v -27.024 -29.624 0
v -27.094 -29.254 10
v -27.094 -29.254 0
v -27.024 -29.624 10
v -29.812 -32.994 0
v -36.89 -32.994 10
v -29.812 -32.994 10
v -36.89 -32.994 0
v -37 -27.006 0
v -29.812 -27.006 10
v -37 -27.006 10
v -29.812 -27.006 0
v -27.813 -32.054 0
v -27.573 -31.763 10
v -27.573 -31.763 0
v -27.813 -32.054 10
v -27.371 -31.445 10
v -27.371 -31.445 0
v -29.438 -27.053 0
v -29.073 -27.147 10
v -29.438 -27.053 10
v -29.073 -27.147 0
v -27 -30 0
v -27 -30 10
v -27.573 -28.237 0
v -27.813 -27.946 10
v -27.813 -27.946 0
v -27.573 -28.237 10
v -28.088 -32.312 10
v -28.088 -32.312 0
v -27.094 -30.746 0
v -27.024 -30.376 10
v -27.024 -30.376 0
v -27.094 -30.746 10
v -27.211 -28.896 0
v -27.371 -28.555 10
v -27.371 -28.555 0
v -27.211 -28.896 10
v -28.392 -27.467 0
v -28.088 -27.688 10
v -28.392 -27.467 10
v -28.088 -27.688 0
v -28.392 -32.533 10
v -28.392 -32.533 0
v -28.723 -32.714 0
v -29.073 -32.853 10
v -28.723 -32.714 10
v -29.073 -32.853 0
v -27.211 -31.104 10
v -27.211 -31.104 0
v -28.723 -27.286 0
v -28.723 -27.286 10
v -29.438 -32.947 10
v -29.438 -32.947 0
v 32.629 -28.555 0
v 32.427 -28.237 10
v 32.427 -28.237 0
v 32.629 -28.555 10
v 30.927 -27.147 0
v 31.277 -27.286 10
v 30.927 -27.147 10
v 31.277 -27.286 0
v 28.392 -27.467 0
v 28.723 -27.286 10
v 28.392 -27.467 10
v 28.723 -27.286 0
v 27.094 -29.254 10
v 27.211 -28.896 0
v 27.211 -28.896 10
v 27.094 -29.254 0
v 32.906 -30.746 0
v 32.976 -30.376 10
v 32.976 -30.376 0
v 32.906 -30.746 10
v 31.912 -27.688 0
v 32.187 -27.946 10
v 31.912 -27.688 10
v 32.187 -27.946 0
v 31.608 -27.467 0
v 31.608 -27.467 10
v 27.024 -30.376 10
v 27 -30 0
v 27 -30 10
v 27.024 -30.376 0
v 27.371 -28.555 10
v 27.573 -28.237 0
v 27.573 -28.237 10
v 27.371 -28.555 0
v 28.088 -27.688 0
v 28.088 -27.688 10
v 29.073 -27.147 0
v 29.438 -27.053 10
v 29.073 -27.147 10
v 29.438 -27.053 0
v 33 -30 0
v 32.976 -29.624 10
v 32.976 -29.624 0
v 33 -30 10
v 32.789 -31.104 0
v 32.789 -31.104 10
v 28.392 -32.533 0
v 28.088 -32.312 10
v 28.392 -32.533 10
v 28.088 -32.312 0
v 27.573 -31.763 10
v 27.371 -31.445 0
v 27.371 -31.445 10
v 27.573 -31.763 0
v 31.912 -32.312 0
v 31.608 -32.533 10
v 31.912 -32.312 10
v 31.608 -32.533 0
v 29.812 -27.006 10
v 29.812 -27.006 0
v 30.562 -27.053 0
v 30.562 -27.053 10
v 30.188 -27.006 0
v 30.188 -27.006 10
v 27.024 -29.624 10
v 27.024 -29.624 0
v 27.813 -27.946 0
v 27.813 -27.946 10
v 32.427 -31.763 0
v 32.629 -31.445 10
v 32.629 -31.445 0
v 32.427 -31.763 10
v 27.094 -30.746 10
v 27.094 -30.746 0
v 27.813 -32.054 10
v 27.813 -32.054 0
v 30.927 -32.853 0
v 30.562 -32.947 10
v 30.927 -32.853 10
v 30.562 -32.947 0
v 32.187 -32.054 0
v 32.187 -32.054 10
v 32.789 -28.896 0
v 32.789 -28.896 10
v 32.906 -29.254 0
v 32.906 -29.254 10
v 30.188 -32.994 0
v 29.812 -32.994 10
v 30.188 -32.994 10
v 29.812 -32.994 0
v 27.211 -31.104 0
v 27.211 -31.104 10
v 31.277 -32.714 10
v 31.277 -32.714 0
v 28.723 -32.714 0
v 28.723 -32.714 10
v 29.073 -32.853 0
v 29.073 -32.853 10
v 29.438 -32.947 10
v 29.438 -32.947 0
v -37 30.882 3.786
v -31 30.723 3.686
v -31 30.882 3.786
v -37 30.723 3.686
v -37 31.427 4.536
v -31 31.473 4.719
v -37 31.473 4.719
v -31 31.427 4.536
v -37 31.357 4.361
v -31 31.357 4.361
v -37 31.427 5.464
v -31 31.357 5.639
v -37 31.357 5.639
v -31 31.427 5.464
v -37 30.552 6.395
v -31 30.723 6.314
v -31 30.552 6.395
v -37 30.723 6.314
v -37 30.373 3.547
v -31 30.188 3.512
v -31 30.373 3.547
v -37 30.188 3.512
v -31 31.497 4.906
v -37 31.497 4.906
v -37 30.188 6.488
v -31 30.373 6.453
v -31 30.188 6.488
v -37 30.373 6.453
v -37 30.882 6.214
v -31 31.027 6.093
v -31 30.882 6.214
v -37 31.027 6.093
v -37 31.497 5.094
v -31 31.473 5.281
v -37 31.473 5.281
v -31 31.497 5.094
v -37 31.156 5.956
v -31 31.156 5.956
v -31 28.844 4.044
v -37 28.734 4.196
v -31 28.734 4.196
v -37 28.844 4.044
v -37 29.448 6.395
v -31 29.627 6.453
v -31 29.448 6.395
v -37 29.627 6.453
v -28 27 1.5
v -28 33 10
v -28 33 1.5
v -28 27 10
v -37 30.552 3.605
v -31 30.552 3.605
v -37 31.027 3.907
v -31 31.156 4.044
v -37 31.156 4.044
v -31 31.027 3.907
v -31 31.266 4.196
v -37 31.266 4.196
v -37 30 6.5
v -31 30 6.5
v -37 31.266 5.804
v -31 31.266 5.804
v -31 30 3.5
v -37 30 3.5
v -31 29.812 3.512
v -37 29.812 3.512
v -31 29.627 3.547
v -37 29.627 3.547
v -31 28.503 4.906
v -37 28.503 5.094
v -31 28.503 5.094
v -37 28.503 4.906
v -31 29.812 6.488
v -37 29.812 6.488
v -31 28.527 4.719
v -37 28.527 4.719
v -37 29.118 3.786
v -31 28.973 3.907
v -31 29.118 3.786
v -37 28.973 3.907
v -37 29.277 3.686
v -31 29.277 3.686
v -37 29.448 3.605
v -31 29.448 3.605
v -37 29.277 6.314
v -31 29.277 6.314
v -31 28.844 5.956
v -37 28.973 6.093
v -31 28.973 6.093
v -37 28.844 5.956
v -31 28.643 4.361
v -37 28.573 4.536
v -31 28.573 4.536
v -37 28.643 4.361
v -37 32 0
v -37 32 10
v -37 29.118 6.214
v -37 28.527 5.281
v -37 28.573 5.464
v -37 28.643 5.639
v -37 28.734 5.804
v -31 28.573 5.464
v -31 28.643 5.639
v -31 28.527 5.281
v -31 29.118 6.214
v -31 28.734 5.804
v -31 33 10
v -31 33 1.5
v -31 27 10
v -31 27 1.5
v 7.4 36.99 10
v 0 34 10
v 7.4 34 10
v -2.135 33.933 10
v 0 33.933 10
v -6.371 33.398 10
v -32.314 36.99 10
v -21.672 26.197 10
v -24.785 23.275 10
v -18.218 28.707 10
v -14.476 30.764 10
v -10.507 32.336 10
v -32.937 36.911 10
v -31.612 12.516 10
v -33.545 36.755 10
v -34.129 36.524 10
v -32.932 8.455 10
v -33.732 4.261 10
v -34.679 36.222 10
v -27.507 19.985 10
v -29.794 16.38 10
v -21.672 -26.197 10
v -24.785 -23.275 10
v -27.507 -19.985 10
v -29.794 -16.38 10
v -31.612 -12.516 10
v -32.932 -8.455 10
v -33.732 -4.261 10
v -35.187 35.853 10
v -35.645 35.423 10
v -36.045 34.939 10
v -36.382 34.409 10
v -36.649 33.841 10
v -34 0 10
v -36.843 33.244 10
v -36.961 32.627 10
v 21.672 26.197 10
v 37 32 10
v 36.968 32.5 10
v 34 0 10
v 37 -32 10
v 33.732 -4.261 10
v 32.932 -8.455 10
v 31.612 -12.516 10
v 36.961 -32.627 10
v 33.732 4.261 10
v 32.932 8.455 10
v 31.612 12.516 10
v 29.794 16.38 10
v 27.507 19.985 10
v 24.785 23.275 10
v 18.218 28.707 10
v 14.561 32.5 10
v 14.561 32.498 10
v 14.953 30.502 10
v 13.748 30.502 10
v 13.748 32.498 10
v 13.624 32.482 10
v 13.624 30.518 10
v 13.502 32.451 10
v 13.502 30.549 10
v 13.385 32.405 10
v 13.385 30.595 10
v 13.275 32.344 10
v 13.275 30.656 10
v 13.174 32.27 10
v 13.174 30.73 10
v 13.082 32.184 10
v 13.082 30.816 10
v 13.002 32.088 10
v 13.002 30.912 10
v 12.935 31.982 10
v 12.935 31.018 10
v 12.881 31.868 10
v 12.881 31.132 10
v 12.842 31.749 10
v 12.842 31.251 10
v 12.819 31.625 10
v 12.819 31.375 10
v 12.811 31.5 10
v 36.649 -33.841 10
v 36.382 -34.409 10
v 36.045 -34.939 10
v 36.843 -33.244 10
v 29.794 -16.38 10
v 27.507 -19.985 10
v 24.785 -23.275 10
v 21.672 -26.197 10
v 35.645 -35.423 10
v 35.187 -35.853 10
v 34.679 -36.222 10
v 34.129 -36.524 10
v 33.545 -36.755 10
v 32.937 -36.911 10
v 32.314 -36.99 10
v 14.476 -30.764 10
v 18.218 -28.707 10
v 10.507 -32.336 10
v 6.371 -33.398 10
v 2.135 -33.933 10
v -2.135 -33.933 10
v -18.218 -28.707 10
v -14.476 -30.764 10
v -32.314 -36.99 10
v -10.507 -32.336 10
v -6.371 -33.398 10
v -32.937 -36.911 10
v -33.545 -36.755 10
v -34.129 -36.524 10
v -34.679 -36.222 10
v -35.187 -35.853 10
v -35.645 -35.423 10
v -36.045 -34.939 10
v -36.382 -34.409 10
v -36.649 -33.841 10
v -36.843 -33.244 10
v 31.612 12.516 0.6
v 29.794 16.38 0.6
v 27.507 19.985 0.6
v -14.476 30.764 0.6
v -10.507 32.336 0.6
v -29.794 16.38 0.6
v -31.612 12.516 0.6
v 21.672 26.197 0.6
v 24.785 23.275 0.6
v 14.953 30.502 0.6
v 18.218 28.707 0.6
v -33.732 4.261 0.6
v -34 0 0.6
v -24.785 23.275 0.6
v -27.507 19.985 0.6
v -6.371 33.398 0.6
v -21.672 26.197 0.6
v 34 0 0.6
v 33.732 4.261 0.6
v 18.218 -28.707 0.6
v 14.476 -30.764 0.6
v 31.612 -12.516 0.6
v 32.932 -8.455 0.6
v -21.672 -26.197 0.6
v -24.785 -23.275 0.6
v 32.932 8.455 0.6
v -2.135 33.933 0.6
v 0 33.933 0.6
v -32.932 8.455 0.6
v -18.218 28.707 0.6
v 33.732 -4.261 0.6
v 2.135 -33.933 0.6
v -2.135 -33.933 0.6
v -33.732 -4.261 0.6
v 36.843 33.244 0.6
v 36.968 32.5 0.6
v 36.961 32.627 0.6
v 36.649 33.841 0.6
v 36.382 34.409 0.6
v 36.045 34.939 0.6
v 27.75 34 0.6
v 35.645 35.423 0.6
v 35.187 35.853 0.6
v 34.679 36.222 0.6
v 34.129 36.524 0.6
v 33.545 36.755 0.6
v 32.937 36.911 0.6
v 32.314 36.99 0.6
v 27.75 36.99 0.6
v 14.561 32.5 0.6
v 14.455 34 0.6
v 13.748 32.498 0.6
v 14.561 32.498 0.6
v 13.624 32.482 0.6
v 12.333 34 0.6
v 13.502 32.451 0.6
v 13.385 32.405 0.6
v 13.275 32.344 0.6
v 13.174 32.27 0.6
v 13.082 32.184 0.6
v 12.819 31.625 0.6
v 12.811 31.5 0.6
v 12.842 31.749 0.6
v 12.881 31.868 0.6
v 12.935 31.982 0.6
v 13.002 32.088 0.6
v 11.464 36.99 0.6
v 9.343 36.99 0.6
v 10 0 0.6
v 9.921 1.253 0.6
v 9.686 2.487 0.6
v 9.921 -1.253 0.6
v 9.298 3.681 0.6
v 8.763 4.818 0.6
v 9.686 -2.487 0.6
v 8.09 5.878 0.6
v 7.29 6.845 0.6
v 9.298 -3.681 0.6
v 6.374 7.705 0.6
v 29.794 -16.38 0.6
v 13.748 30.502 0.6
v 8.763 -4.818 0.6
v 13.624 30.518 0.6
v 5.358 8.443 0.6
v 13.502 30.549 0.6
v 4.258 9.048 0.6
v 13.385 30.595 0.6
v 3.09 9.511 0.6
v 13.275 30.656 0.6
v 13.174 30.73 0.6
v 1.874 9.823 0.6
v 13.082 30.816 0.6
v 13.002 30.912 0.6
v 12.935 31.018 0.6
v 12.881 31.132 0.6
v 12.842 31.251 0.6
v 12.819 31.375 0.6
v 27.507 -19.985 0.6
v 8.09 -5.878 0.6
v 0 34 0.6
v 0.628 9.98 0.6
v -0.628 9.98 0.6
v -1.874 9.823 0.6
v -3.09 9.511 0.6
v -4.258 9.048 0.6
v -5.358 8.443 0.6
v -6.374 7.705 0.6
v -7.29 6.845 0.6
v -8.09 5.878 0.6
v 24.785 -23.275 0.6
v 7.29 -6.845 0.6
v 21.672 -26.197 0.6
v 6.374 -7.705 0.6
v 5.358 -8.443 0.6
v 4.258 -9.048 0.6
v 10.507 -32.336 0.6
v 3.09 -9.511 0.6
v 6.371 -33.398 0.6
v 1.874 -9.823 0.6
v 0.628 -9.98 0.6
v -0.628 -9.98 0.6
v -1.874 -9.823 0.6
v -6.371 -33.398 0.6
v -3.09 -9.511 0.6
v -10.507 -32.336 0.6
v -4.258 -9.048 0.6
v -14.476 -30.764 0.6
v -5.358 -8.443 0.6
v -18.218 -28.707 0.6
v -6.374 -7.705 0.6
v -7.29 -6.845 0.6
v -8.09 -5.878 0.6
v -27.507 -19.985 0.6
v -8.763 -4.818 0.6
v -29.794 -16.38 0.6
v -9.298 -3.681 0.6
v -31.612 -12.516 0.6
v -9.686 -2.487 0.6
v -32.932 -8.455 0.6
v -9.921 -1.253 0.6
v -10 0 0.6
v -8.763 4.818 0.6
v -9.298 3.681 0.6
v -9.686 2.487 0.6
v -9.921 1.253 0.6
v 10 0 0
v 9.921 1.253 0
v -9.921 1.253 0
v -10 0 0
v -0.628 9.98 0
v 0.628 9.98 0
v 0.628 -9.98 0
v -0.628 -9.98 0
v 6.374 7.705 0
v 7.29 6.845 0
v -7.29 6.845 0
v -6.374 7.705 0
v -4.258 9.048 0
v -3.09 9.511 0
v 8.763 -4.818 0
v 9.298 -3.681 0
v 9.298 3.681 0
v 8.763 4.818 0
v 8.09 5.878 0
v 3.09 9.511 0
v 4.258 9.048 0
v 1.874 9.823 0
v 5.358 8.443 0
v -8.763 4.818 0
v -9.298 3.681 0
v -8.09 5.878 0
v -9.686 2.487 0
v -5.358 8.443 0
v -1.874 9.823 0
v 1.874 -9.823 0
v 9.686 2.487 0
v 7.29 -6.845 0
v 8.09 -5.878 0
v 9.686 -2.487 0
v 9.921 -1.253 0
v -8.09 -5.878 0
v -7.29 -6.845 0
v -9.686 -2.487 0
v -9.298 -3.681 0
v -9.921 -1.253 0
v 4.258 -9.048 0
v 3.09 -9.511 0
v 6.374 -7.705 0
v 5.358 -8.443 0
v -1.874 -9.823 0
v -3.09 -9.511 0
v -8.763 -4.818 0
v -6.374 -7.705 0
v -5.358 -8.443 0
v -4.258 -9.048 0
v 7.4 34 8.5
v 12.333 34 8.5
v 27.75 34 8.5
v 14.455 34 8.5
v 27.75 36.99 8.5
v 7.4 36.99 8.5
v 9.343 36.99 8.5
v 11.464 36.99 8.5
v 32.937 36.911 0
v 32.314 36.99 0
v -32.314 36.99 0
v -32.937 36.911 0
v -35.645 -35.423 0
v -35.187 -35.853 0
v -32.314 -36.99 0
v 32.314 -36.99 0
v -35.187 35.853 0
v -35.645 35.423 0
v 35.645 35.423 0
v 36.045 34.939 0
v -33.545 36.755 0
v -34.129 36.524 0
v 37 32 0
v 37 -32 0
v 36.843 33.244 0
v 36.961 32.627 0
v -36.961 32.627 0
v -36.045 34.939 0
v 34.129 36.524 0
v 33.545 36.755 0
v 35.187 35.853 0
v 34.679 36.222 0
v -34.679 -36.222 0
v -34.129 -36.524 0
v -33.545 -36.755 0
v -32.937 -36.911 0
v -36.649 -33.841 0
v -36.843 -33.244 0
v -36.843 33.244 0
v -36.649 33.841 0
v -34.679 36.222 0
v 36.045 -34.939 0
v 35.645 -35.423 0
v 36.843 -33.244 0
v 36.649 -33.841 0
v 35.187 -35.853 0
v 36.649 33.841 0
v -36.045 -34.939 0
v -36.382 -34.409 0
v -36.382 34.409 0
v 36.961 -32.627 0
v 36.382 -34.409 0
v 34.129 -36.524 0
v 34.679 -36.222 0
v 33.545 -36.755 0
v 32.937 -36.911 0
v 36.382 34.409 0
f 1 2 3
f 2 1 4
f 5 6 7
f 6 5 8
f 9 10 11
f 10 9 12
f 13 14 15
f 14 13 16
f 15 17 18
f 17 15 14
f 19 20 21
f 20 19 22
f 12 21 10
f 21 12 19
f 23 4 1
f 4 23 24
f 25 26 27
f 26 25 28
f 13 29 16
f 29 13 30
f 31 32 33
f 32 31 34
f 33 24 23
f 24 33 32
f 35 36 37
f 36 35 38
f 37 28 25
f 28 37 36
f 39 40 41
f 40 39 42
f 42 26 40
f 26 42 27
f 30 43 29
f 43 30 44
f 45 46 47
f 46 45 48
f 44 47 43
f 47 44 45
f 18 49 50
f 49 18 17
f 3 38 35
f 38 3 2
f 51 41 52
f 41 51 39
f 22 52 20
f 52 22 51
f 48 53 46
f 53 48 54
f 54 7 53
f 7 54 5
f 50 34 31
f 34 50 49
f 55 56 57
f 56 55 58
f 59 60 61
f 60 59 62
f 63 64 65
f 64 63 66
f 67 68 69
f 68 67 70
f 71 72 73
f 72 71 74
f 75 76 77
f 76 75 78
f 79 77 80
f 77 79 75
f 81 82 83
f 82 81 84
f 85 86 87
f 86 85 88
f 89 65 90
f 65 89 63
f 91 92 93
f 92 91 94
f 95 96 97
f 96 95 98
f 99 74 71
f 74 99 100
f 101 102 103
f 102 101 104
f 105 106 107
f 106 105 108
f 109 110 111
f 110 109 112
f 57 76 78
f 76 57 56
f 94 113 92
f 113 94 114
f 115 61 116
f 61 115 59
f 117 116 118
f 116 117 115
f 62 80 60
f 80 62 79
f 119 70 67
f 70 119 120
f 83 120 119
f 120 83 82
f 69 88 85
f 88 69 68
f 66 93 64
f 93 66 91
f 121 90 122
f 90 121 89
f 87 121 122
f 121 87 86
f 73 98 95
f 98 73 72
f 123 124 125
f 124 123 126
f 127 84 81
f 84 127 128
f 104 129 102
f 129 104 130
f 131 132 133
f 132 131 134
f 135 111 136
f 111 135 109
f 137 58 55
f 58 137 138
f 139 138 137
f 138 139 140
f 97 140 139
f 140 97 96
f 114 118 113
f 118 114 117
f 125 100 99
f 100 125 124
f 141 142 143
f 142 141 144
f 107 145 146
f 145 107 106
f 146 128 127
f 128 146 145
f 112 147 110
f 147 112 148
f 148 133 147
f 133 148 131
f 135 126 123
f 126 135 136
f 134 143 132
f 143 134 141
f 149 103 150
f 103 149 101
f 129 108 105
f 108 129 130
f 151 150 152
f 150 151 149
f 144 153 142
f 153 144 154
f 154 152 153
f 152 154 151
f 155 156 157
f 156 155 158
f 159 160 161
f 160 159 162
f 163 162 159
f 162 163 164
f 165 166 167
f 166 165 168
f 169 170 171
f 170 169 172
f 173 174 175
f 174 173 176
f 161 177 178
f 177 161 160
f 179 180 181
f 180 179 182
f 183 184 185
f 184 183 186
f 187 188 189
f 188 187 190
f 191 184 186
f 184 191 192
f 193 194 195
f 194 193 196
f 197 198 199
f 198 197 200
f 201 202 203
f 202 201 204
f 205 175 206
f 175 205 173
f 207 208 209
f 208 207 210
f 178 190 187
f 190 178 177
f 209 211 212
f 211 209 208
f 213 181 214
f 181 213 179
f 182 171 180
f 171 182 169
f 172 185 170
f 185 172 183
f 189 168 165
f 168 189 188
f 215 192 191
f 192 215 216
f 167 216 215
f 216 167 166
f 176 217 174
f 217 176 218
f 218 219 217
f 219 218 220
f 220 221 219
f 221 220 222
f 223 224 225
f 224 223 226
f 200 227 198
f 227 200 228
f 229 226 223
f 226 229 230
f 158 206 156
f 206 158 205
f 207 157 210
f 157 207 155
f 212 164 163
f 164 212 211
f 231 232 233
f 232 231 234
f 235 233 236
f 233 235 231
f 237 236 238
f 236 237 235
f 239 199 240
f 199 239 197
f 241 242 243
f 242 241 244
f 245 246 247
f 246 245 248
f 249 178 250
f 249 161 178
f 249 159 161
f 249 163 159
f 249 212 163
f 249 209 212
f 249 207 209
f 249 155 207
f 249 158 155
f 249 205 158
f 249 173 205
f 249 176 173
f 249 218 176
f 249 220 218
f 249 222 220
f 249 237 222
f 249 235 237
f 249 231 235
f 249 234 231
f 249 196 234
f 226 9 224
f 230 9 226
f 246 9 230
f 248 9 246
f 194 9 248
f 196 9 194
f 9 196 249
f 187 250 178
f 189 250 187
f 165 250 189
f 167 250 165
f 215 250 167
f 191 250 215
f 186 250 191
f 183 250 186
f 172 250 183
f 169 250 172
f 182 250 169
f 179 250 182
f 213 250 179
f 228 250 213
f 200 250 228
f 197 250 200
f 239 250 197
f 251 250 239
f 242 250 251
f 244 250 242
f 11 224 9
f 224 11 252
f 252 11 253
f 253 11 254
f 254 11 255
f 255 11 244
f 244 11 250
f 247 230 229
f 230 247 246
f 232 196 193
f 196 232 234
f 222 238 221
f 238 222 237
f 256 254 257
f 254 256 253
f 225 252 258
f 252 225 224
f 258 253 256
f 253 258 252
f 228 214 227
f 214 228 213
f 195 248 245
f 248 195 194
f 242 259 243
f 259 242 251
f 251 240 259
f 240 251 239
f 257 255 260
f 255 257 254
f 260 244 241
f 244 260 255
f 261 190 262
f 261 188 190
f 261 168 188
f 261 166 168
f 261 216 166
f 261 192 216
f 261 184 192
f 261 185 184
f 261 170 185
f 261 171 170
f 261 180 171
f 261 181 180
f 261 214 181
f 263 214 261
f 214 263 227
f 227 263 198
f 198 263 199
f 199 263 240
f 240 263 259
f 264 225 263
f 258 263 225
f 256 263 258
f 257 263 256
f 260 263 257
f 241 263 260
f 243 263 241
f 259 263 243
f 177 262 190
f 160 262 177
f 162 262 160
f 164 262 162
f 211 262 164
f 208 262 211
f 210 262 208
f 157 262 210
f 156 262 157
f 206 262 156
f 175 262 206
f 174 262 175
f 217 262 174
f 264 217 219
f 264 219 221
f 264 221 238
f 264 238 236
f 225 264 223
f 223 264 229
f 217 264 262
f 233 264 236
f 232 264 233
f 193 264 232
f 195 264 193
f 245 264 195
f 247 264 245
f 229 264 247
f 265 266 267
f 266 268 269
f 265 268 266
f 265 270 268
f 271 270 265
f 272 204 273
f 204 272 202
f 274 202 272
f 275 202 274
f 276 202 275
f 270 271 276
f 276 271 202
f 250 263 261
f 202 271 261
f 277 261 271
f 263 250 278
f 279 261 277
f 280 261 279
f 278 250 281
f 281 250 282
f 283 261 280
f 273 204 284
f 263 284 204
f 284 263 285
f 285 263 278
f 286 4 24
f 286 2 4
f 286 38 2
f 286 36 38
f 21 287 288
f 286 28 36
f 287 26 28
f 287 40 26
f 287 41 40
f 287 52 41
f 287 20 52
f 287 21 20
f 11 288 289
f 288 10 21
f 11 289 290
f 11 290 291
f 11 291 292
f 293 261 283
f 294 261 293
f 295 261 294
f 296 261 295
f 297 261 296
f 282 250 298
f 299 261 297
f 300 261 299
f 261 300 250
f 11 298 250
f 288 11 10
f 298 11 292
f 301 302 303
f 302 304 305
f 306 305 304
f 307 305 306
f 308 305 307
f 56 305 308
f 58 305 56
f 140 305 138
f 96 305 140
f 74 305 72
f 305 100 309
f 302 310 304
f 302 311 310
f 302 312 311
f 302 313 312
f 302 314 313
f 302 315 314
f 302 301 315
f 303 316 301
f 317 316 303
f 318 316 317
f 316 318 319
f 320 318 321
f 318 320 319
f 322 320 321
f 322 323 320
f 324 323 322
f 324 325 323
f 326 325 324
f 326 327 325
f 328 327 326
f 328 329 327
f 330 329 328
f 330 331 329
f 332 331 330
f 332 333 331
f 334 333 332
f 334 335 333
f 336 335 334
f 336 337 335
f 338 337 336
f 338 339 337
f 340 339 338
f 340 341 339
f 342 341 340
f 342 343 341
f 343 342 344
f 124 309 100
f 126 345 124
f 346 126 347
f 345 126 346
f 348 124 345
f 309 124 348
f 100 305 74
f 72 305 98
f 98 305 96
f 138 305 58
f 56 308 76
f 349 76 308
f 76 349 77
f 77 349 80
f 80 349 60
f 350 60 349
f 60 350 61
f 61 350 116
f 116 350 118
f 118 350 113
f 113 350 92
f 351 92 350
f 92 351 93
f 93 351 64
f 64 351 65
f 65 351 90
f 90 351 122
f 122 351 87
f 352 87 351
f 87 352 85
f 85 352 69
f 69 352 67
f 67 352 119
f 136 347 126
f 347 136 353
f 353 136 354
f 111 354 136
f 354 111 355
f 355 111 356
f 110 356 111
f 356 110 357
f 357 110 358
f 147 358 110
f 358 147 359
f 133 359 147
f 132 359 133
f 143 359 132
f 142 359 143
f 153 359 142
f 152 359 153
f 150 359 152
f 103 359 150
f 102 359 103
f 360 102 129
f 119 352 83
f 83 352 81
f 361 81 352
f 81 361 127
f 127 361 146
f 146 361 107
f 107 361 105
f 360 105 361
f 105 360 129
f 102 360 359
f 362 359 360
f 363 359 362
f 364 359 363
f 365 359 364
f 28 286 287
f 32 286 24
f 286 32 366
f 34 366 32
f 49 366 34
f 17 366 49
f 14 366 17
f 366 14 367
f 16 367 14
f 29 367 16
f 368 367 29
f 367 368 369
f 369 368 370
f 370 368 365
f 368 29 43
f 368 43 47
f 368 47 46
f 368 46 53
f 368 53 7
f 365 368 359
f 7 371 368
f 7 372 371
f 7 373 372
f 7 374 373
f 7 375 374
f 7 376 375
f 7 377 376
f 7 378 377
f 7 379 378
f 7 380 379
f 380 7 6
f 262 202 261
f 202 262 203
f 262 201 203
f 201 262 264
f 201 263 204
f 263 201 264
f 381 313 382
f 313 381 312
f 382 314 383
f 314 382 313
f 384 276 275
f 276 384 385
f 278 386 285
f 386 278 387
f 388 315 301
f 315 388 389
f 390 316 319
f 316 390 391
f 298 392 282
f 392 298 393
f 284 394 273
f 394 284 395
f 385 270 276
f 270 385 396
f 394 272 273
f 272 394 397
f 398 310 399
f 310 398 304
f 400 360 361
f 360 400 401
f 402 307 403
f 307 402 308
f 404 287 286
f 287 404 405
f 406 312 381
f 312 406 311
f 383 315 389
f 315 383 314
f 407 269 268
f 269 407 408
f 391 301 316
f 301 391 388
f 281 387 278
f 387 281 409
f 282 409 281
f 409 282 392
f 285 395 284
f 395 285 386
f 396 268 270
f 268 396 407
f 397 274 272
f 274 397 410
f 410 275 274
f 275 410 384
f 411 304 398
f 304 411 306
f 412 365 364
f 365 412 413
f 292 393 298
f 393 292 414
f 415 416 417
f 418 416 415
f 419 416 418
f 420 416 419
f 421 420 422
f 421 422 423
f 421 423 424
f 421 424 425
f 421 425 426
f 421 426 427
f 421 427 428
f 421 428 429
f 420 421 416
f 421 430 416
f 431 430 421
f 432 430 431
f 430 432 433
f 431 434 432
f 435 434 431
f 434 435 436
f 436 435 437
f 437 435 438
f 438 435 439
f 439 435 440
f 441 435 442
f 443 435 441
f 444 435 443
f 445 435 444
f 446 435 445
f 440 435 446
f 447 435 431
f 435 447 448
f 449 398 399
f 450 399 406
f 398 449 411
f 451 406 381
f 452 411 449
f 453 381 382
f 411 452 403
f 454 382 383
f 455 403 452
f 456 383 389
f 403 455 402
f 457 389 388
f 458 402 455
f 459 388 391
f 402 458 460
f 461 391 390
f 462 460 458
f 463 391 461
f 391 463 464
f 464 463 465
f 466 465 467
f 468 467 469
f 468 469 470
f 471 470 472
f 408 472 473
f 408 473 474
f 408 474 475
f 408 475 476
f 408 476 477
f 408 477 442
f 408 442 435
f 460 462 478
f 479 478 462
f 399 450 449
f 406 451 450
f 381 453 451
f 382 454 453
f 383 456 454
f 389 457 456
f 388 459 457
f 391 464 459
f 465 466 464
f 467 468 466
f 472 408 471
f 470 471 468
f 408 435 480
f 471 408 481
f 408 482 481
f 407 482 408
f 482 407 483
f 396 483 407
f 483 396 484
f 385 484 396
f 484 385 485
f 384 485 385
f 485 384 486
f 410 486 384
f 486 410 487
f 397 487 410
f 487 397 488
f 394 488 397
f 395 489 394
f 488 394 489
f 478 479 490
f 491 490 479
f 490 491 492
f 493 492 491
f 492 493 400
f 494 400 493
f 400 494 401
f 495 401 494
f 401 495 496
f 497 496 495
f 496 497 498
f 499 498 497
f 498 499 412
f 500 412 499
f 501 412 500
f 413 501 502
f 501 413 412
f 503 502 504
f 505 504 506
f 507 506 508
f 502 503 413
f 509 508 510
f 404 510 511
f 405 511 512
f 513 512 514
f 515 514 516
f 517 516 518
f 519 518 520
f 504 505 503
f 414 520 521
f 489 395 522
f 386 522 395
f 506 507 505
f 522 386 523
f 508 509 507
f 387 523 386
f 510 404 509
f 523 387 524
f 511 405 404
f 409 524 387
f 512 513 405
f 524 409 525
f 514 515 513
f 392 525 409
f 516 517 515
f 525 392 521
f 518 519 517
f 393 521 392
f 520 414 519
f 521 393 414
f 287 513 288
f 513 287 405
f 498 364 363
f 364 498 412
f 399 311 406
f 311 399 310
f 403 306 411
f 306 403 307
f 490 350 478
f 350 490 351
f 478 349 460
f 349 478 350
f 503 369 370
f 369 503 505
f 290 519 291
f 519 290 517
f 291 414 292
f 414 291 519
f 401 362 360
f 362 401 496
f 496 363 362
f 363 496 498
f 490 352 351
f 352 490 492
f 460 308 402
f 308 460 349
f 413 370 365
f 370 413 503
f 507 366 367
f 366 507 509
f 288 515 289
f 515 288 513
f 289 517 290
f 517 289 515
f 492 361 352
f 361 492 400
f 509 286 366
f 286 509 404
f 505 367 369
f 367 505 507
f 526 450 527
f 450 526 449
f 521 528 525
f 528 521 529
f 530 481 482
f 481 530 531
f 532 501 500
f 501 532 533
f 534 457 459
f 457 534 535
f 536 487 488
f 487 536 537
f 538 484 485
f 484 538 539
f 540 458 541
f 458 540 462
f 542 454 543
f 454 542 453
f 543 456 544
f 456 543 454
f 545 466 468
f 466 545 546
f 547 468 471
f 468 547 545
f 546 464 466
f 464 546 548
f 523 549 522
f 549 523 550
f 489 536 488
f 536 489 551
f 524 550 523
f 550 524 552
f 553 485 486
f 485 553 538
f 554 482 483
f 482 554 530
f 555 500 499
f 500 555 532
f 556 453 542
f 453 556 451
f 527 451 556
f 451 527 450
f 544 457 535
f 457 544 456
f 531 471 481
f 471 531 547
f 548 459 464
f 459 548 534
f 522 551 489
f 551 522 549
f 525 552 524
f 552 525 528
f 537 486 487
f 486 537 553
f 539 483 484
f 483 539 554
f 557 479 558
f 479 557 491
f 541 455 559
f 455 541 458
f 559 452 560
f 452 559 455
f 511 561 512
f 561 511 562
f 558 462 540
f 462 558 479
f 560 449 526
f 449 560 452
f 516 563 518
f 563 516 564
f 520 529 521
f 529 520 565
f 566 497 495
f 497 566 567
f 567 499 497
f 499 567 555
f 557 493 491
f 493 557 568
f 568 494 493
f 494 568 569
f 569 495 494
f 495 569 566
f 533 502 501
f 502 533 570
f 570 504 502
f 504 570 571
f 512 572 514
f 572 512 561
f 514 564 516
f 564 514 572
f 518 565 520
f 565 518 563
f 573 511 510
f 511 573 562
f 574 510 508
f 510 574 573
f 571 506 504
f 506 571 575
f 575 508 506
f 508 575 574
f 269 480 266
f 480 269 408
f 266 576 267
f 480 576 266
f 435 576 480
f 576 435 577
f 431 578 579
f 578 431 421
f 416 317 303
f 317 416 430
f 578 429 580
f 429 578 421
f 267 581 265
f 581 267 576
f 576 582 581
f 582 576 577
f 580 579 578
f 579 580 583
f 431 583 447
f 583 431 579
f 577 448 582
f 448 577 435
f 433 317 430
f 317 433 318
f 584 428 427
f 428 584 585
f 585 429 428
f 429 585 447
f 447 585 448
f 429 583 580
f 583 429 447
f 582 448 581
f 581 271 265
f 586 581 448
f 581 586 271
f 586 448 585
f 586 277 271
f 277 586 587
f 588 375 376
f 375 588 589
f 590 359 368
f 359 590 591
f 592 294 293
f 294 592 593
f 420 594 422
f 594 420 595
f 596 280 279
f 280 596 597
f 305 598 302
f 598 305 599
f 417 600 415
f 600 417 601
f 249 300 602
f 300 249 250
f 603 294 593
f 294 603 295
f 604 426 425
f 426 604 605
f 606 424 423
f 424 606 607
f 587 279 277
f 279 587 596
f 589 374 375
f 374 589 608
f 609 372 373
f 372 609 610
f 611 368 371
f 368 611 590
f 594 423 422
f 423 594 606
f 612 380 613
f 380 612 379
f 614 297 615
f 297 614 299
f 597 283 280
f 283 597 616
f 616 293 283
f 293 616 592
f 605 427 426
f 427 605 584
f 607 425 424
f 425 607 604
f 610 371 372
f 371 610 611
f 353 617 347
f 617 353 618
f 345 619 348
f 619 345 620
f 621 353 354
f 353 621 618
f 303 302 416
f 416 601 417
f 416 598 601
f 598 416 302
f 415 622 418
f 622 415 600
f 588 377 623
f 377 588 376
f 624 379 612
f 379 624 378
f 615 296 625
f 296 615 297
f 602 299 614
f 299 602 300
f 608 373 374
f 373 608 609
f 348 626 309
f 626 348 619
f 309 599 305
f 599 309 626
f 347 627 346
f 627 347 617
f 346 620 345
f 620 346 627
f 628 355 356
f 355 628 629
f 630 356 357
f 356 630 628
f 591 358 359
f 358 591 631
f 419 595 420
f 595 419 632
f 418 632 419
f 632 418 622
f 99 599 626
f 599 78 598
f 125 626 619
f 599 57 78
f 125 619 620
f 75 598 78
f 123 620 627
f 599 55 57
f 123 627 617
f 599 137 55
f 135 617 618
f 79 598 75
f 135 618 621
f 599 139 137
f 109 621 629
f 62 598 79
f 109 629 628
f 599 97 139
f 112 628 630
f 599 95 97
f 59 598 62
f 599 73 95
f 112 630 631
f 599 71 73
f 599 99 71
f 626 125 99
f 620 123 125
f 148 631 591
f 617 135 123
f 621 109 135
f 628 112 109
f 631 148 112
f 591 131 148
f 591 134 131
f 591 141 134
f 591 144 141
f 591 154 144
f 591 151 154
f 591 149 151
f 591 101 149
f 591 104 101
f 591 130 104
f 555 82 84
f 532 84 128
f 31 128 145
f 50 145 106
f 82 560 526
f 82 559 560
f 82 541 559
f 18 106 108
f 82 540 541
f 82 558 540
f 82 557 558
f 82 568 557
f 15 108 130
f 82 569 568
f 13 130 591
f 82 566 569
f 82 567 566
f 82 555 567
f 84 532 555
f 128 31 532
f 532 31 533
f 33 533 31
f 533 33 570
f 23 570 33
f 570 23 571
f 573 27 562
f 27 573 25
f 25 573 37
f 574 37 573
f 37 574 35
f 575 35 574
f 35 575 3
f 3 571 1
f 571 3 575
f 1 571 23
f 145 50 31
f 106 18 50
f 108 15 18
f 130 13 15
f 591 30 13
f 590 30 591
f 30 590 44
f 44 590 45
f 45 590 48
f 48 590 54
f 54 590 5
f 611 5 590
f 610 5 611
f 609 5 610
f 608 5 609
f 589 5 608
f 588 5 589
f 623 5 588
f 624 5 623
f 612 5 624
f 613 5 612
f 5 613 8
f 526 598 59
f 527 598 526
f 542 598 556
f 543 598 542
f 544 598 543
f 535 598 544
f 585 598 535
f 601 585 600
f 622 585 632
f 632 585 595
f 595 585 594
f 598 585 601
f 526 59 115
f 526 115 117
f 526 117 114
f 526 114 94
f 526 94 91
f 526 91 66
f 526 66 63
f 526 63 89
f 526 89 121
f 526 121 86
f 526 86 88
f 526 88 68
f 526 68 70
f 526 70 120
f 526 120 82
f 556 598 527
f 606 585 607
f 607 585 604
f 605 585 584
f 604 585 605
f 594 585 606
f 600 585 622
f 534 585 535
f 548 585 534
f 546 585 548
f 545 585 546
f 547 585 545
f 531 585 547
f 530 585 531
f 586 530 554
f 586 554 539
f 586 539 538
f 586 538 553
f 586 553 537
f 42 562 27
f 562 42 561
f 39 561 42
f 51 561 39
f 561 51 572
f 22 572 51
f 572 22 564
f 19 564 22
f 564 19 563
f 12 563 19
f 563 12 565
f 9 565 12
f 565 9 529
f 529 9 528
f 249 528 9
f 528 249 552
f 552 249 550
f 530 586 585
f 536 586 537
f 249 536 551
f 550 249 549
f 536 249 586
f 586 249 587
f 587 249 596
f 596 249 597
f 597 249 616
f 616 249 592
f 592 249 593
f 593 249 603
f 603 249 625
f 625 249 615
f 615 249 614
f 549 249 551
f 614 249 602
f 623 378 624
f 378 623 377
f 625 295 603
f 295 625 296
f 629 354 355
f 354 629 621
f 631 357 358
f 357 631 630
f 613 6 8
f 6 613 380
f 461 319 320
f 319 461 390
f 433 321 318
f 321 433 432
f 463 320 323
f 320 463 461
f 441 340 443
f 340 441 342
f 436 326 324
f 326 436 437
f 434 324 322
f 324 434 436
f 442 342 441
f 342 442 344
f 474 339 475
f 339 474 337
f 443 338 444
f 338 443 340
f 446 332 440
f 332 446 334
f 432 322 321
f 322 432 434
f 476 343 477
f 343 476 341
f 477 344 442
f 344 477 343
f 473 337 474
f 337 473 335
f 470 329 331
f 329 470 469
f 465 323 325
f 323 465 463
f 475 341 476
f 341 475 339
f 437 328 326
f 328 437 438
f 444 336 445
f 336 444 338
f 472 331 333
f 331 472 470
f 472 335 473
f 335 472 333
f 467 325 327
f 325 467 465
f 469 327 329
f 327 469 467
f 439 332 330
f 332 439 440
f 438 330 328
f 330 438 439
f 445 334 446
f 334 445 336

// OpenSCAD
$fn = 50;


union() {
	difference() {
		union() {
			translate(v = [0, 0, 0]) {
				rotate(a = [0, 0, 0]) {
					hull() {
						translate(v = [-32.0000000000, 32.0000000000, 0]) {
							rotate(a = [0, 0, 0]) {
								translate(v = [0, 0, 0]) {
									rotate(a = [0, 0, 0]) {
										cylinder(h = 10, r = 5);
									}
								}
							}
						}
						translate(v = [32.0000000000, 32.0000000000, 0]) {
							rotate(a = [0, 0, 0]) {
								translate(v = [0, 0, 0]) {
									rotate(a = [0, 0, 0]) {
										cylinder(h = 10, r = 5);
									}
								}
							}
						}
						translate(v = [-32.0000000000, -32.0000000000, 0]) {
							rotate(a = [0, 0, 0]) {
								translate(v = [0, 0, 0]) {
									rotate(a = [0, 0, 0]) {
										cylinder(h = 10, r = 5);
									}
								}
							}
						}
						translate(v = [32.0000000000, -32.0000000000, 0]) {
							rotate(a = [0, 0, 0]) {
								translate(v = [0, 0, 0]) {
									rotate(a = [0, 0, 0]) {
										cylinder(h = 10, r = 5);
									}
								}
							}
						}
					}
				}
			}
		}
		union() {
			translate(v = [-37.5000000000, -30.0000000000, -125]) {
				rotate(a = [0, 0, 0]) {
					hull() {
						translate(v = [7.5000000000, 0, 0]) {
							rotate(a = [0, 0, 0]) {
								translate(v = [0, 0, 0]) {
									rotate(a = [0, 0, 0]) {
										cylinder(h = 250, r = 3.0000000000);
									}
								}
							}
						}
						translate(v = [-7.5000000000, 0, 0]) {
							rotate(a = [0, 0, 0]) {
								translate(v = [0, 0, 0]) {
									rotate(a = [0, 0, 0]) {
										cylinder(h = 250, r = 3.0000000000);
									}
								}
							}
						}
					}
				}
			}
			translate(v = [30.0000000000, -30.0000000000, -125.0000000000]) {
				rotate(a = [0, 0, 0]) {
					cylinder(h = 250, r = 3.0000000000);
				}
			}
			translate(v = [-37.0000000000, 30.0000000000, 5.0000000000]) {
				rotate(a = [0, 90, 0]) {
					cylinder(h = 9, r = 1.5000000000);
				}
			}
			translate(v = [-31.0000000000, 27.0000000000, 1.5000000000]) {
				rotate(a = [0, 0, 0]) {
					cube(size = [3, 6, 8.5000000000]);
				}
			}
			translate(v = [0, 0, 0.6000000000]) {
				rotate(a = [0, 0, 0]) {
					cylinder(h = 12.4000000000, r = 34.0000000000);
				}
			}
			translate(v = [0, 0, -5.0000000000]) {
				rotate(a = [0, 0, 0]) {
					cylinder(h = 10, r = 10.0000000000);
				}
			}
			translate(v = [0.0000000000, 32.5000000000, 0.6000000000]) {
				rotate(a = [0, 0, 0]) {
					cube(size = [37.0000000000, 1.5000000000, 12.4000000000]);
				}
			}
			translate(v = [27.7500000000, 32.5000000000, 0.6000000000]) {
				rotate(a = [0, 0, 0]) {
					cube(size = [9.2500000000, 4.5000000000, 12.4000000000]);
				}
			}
			translate(v = [7.4000000000, 32.5000000000, 8.5000000000]) {
				rotate(a = [0, 0, 0]) {
					cube(size = [29.6000000000, 4.5000000000, 1.5000000000]);
				}
			}
			translate(v = [8.5833333333, 37.7500000000, 0.6000000000]) {
				rotate(a = [0, 0, -45]) {
					cube(size = [7.5000000000, 1.5000000000, 12.4000000000]);
				}
			}
			translate(v = [7.0610000000, 30.5000000000, 0.6000000000]) {
				rotate(a = [0, 0, 0]) {
					cube(size = [7.5000000000, 2, 9.4000000000]);
				}
			}
		}
	}
	union() {
		translate(v = [16.3110000000, 31.5000000000, 0]) {
			rotate(a = [0, 0, 0]) {
				hull() {
					translate(v = [2.5000000000, 0, 0]) {
						rotate(a = [0, 0, 0]) {
							translate(v = [0, 0, 0]) {
								rotate(a = [0, 0, 0]) {
									cylinder(h = 10, r = 1.0000000000);
								}
							}
						}
					}
					translate(v = [-2.5000000000, 0, 0]) {
						rotate(a = [0, 0, 0]) {
							translate(v = [0, 0, 0]) {
								rotate(a = [0, 0, 0]) {
									cylinder(h = 10, r = 1.0000000000);
								}
							}
						}
					}
				}
			}
		}
	}
}
